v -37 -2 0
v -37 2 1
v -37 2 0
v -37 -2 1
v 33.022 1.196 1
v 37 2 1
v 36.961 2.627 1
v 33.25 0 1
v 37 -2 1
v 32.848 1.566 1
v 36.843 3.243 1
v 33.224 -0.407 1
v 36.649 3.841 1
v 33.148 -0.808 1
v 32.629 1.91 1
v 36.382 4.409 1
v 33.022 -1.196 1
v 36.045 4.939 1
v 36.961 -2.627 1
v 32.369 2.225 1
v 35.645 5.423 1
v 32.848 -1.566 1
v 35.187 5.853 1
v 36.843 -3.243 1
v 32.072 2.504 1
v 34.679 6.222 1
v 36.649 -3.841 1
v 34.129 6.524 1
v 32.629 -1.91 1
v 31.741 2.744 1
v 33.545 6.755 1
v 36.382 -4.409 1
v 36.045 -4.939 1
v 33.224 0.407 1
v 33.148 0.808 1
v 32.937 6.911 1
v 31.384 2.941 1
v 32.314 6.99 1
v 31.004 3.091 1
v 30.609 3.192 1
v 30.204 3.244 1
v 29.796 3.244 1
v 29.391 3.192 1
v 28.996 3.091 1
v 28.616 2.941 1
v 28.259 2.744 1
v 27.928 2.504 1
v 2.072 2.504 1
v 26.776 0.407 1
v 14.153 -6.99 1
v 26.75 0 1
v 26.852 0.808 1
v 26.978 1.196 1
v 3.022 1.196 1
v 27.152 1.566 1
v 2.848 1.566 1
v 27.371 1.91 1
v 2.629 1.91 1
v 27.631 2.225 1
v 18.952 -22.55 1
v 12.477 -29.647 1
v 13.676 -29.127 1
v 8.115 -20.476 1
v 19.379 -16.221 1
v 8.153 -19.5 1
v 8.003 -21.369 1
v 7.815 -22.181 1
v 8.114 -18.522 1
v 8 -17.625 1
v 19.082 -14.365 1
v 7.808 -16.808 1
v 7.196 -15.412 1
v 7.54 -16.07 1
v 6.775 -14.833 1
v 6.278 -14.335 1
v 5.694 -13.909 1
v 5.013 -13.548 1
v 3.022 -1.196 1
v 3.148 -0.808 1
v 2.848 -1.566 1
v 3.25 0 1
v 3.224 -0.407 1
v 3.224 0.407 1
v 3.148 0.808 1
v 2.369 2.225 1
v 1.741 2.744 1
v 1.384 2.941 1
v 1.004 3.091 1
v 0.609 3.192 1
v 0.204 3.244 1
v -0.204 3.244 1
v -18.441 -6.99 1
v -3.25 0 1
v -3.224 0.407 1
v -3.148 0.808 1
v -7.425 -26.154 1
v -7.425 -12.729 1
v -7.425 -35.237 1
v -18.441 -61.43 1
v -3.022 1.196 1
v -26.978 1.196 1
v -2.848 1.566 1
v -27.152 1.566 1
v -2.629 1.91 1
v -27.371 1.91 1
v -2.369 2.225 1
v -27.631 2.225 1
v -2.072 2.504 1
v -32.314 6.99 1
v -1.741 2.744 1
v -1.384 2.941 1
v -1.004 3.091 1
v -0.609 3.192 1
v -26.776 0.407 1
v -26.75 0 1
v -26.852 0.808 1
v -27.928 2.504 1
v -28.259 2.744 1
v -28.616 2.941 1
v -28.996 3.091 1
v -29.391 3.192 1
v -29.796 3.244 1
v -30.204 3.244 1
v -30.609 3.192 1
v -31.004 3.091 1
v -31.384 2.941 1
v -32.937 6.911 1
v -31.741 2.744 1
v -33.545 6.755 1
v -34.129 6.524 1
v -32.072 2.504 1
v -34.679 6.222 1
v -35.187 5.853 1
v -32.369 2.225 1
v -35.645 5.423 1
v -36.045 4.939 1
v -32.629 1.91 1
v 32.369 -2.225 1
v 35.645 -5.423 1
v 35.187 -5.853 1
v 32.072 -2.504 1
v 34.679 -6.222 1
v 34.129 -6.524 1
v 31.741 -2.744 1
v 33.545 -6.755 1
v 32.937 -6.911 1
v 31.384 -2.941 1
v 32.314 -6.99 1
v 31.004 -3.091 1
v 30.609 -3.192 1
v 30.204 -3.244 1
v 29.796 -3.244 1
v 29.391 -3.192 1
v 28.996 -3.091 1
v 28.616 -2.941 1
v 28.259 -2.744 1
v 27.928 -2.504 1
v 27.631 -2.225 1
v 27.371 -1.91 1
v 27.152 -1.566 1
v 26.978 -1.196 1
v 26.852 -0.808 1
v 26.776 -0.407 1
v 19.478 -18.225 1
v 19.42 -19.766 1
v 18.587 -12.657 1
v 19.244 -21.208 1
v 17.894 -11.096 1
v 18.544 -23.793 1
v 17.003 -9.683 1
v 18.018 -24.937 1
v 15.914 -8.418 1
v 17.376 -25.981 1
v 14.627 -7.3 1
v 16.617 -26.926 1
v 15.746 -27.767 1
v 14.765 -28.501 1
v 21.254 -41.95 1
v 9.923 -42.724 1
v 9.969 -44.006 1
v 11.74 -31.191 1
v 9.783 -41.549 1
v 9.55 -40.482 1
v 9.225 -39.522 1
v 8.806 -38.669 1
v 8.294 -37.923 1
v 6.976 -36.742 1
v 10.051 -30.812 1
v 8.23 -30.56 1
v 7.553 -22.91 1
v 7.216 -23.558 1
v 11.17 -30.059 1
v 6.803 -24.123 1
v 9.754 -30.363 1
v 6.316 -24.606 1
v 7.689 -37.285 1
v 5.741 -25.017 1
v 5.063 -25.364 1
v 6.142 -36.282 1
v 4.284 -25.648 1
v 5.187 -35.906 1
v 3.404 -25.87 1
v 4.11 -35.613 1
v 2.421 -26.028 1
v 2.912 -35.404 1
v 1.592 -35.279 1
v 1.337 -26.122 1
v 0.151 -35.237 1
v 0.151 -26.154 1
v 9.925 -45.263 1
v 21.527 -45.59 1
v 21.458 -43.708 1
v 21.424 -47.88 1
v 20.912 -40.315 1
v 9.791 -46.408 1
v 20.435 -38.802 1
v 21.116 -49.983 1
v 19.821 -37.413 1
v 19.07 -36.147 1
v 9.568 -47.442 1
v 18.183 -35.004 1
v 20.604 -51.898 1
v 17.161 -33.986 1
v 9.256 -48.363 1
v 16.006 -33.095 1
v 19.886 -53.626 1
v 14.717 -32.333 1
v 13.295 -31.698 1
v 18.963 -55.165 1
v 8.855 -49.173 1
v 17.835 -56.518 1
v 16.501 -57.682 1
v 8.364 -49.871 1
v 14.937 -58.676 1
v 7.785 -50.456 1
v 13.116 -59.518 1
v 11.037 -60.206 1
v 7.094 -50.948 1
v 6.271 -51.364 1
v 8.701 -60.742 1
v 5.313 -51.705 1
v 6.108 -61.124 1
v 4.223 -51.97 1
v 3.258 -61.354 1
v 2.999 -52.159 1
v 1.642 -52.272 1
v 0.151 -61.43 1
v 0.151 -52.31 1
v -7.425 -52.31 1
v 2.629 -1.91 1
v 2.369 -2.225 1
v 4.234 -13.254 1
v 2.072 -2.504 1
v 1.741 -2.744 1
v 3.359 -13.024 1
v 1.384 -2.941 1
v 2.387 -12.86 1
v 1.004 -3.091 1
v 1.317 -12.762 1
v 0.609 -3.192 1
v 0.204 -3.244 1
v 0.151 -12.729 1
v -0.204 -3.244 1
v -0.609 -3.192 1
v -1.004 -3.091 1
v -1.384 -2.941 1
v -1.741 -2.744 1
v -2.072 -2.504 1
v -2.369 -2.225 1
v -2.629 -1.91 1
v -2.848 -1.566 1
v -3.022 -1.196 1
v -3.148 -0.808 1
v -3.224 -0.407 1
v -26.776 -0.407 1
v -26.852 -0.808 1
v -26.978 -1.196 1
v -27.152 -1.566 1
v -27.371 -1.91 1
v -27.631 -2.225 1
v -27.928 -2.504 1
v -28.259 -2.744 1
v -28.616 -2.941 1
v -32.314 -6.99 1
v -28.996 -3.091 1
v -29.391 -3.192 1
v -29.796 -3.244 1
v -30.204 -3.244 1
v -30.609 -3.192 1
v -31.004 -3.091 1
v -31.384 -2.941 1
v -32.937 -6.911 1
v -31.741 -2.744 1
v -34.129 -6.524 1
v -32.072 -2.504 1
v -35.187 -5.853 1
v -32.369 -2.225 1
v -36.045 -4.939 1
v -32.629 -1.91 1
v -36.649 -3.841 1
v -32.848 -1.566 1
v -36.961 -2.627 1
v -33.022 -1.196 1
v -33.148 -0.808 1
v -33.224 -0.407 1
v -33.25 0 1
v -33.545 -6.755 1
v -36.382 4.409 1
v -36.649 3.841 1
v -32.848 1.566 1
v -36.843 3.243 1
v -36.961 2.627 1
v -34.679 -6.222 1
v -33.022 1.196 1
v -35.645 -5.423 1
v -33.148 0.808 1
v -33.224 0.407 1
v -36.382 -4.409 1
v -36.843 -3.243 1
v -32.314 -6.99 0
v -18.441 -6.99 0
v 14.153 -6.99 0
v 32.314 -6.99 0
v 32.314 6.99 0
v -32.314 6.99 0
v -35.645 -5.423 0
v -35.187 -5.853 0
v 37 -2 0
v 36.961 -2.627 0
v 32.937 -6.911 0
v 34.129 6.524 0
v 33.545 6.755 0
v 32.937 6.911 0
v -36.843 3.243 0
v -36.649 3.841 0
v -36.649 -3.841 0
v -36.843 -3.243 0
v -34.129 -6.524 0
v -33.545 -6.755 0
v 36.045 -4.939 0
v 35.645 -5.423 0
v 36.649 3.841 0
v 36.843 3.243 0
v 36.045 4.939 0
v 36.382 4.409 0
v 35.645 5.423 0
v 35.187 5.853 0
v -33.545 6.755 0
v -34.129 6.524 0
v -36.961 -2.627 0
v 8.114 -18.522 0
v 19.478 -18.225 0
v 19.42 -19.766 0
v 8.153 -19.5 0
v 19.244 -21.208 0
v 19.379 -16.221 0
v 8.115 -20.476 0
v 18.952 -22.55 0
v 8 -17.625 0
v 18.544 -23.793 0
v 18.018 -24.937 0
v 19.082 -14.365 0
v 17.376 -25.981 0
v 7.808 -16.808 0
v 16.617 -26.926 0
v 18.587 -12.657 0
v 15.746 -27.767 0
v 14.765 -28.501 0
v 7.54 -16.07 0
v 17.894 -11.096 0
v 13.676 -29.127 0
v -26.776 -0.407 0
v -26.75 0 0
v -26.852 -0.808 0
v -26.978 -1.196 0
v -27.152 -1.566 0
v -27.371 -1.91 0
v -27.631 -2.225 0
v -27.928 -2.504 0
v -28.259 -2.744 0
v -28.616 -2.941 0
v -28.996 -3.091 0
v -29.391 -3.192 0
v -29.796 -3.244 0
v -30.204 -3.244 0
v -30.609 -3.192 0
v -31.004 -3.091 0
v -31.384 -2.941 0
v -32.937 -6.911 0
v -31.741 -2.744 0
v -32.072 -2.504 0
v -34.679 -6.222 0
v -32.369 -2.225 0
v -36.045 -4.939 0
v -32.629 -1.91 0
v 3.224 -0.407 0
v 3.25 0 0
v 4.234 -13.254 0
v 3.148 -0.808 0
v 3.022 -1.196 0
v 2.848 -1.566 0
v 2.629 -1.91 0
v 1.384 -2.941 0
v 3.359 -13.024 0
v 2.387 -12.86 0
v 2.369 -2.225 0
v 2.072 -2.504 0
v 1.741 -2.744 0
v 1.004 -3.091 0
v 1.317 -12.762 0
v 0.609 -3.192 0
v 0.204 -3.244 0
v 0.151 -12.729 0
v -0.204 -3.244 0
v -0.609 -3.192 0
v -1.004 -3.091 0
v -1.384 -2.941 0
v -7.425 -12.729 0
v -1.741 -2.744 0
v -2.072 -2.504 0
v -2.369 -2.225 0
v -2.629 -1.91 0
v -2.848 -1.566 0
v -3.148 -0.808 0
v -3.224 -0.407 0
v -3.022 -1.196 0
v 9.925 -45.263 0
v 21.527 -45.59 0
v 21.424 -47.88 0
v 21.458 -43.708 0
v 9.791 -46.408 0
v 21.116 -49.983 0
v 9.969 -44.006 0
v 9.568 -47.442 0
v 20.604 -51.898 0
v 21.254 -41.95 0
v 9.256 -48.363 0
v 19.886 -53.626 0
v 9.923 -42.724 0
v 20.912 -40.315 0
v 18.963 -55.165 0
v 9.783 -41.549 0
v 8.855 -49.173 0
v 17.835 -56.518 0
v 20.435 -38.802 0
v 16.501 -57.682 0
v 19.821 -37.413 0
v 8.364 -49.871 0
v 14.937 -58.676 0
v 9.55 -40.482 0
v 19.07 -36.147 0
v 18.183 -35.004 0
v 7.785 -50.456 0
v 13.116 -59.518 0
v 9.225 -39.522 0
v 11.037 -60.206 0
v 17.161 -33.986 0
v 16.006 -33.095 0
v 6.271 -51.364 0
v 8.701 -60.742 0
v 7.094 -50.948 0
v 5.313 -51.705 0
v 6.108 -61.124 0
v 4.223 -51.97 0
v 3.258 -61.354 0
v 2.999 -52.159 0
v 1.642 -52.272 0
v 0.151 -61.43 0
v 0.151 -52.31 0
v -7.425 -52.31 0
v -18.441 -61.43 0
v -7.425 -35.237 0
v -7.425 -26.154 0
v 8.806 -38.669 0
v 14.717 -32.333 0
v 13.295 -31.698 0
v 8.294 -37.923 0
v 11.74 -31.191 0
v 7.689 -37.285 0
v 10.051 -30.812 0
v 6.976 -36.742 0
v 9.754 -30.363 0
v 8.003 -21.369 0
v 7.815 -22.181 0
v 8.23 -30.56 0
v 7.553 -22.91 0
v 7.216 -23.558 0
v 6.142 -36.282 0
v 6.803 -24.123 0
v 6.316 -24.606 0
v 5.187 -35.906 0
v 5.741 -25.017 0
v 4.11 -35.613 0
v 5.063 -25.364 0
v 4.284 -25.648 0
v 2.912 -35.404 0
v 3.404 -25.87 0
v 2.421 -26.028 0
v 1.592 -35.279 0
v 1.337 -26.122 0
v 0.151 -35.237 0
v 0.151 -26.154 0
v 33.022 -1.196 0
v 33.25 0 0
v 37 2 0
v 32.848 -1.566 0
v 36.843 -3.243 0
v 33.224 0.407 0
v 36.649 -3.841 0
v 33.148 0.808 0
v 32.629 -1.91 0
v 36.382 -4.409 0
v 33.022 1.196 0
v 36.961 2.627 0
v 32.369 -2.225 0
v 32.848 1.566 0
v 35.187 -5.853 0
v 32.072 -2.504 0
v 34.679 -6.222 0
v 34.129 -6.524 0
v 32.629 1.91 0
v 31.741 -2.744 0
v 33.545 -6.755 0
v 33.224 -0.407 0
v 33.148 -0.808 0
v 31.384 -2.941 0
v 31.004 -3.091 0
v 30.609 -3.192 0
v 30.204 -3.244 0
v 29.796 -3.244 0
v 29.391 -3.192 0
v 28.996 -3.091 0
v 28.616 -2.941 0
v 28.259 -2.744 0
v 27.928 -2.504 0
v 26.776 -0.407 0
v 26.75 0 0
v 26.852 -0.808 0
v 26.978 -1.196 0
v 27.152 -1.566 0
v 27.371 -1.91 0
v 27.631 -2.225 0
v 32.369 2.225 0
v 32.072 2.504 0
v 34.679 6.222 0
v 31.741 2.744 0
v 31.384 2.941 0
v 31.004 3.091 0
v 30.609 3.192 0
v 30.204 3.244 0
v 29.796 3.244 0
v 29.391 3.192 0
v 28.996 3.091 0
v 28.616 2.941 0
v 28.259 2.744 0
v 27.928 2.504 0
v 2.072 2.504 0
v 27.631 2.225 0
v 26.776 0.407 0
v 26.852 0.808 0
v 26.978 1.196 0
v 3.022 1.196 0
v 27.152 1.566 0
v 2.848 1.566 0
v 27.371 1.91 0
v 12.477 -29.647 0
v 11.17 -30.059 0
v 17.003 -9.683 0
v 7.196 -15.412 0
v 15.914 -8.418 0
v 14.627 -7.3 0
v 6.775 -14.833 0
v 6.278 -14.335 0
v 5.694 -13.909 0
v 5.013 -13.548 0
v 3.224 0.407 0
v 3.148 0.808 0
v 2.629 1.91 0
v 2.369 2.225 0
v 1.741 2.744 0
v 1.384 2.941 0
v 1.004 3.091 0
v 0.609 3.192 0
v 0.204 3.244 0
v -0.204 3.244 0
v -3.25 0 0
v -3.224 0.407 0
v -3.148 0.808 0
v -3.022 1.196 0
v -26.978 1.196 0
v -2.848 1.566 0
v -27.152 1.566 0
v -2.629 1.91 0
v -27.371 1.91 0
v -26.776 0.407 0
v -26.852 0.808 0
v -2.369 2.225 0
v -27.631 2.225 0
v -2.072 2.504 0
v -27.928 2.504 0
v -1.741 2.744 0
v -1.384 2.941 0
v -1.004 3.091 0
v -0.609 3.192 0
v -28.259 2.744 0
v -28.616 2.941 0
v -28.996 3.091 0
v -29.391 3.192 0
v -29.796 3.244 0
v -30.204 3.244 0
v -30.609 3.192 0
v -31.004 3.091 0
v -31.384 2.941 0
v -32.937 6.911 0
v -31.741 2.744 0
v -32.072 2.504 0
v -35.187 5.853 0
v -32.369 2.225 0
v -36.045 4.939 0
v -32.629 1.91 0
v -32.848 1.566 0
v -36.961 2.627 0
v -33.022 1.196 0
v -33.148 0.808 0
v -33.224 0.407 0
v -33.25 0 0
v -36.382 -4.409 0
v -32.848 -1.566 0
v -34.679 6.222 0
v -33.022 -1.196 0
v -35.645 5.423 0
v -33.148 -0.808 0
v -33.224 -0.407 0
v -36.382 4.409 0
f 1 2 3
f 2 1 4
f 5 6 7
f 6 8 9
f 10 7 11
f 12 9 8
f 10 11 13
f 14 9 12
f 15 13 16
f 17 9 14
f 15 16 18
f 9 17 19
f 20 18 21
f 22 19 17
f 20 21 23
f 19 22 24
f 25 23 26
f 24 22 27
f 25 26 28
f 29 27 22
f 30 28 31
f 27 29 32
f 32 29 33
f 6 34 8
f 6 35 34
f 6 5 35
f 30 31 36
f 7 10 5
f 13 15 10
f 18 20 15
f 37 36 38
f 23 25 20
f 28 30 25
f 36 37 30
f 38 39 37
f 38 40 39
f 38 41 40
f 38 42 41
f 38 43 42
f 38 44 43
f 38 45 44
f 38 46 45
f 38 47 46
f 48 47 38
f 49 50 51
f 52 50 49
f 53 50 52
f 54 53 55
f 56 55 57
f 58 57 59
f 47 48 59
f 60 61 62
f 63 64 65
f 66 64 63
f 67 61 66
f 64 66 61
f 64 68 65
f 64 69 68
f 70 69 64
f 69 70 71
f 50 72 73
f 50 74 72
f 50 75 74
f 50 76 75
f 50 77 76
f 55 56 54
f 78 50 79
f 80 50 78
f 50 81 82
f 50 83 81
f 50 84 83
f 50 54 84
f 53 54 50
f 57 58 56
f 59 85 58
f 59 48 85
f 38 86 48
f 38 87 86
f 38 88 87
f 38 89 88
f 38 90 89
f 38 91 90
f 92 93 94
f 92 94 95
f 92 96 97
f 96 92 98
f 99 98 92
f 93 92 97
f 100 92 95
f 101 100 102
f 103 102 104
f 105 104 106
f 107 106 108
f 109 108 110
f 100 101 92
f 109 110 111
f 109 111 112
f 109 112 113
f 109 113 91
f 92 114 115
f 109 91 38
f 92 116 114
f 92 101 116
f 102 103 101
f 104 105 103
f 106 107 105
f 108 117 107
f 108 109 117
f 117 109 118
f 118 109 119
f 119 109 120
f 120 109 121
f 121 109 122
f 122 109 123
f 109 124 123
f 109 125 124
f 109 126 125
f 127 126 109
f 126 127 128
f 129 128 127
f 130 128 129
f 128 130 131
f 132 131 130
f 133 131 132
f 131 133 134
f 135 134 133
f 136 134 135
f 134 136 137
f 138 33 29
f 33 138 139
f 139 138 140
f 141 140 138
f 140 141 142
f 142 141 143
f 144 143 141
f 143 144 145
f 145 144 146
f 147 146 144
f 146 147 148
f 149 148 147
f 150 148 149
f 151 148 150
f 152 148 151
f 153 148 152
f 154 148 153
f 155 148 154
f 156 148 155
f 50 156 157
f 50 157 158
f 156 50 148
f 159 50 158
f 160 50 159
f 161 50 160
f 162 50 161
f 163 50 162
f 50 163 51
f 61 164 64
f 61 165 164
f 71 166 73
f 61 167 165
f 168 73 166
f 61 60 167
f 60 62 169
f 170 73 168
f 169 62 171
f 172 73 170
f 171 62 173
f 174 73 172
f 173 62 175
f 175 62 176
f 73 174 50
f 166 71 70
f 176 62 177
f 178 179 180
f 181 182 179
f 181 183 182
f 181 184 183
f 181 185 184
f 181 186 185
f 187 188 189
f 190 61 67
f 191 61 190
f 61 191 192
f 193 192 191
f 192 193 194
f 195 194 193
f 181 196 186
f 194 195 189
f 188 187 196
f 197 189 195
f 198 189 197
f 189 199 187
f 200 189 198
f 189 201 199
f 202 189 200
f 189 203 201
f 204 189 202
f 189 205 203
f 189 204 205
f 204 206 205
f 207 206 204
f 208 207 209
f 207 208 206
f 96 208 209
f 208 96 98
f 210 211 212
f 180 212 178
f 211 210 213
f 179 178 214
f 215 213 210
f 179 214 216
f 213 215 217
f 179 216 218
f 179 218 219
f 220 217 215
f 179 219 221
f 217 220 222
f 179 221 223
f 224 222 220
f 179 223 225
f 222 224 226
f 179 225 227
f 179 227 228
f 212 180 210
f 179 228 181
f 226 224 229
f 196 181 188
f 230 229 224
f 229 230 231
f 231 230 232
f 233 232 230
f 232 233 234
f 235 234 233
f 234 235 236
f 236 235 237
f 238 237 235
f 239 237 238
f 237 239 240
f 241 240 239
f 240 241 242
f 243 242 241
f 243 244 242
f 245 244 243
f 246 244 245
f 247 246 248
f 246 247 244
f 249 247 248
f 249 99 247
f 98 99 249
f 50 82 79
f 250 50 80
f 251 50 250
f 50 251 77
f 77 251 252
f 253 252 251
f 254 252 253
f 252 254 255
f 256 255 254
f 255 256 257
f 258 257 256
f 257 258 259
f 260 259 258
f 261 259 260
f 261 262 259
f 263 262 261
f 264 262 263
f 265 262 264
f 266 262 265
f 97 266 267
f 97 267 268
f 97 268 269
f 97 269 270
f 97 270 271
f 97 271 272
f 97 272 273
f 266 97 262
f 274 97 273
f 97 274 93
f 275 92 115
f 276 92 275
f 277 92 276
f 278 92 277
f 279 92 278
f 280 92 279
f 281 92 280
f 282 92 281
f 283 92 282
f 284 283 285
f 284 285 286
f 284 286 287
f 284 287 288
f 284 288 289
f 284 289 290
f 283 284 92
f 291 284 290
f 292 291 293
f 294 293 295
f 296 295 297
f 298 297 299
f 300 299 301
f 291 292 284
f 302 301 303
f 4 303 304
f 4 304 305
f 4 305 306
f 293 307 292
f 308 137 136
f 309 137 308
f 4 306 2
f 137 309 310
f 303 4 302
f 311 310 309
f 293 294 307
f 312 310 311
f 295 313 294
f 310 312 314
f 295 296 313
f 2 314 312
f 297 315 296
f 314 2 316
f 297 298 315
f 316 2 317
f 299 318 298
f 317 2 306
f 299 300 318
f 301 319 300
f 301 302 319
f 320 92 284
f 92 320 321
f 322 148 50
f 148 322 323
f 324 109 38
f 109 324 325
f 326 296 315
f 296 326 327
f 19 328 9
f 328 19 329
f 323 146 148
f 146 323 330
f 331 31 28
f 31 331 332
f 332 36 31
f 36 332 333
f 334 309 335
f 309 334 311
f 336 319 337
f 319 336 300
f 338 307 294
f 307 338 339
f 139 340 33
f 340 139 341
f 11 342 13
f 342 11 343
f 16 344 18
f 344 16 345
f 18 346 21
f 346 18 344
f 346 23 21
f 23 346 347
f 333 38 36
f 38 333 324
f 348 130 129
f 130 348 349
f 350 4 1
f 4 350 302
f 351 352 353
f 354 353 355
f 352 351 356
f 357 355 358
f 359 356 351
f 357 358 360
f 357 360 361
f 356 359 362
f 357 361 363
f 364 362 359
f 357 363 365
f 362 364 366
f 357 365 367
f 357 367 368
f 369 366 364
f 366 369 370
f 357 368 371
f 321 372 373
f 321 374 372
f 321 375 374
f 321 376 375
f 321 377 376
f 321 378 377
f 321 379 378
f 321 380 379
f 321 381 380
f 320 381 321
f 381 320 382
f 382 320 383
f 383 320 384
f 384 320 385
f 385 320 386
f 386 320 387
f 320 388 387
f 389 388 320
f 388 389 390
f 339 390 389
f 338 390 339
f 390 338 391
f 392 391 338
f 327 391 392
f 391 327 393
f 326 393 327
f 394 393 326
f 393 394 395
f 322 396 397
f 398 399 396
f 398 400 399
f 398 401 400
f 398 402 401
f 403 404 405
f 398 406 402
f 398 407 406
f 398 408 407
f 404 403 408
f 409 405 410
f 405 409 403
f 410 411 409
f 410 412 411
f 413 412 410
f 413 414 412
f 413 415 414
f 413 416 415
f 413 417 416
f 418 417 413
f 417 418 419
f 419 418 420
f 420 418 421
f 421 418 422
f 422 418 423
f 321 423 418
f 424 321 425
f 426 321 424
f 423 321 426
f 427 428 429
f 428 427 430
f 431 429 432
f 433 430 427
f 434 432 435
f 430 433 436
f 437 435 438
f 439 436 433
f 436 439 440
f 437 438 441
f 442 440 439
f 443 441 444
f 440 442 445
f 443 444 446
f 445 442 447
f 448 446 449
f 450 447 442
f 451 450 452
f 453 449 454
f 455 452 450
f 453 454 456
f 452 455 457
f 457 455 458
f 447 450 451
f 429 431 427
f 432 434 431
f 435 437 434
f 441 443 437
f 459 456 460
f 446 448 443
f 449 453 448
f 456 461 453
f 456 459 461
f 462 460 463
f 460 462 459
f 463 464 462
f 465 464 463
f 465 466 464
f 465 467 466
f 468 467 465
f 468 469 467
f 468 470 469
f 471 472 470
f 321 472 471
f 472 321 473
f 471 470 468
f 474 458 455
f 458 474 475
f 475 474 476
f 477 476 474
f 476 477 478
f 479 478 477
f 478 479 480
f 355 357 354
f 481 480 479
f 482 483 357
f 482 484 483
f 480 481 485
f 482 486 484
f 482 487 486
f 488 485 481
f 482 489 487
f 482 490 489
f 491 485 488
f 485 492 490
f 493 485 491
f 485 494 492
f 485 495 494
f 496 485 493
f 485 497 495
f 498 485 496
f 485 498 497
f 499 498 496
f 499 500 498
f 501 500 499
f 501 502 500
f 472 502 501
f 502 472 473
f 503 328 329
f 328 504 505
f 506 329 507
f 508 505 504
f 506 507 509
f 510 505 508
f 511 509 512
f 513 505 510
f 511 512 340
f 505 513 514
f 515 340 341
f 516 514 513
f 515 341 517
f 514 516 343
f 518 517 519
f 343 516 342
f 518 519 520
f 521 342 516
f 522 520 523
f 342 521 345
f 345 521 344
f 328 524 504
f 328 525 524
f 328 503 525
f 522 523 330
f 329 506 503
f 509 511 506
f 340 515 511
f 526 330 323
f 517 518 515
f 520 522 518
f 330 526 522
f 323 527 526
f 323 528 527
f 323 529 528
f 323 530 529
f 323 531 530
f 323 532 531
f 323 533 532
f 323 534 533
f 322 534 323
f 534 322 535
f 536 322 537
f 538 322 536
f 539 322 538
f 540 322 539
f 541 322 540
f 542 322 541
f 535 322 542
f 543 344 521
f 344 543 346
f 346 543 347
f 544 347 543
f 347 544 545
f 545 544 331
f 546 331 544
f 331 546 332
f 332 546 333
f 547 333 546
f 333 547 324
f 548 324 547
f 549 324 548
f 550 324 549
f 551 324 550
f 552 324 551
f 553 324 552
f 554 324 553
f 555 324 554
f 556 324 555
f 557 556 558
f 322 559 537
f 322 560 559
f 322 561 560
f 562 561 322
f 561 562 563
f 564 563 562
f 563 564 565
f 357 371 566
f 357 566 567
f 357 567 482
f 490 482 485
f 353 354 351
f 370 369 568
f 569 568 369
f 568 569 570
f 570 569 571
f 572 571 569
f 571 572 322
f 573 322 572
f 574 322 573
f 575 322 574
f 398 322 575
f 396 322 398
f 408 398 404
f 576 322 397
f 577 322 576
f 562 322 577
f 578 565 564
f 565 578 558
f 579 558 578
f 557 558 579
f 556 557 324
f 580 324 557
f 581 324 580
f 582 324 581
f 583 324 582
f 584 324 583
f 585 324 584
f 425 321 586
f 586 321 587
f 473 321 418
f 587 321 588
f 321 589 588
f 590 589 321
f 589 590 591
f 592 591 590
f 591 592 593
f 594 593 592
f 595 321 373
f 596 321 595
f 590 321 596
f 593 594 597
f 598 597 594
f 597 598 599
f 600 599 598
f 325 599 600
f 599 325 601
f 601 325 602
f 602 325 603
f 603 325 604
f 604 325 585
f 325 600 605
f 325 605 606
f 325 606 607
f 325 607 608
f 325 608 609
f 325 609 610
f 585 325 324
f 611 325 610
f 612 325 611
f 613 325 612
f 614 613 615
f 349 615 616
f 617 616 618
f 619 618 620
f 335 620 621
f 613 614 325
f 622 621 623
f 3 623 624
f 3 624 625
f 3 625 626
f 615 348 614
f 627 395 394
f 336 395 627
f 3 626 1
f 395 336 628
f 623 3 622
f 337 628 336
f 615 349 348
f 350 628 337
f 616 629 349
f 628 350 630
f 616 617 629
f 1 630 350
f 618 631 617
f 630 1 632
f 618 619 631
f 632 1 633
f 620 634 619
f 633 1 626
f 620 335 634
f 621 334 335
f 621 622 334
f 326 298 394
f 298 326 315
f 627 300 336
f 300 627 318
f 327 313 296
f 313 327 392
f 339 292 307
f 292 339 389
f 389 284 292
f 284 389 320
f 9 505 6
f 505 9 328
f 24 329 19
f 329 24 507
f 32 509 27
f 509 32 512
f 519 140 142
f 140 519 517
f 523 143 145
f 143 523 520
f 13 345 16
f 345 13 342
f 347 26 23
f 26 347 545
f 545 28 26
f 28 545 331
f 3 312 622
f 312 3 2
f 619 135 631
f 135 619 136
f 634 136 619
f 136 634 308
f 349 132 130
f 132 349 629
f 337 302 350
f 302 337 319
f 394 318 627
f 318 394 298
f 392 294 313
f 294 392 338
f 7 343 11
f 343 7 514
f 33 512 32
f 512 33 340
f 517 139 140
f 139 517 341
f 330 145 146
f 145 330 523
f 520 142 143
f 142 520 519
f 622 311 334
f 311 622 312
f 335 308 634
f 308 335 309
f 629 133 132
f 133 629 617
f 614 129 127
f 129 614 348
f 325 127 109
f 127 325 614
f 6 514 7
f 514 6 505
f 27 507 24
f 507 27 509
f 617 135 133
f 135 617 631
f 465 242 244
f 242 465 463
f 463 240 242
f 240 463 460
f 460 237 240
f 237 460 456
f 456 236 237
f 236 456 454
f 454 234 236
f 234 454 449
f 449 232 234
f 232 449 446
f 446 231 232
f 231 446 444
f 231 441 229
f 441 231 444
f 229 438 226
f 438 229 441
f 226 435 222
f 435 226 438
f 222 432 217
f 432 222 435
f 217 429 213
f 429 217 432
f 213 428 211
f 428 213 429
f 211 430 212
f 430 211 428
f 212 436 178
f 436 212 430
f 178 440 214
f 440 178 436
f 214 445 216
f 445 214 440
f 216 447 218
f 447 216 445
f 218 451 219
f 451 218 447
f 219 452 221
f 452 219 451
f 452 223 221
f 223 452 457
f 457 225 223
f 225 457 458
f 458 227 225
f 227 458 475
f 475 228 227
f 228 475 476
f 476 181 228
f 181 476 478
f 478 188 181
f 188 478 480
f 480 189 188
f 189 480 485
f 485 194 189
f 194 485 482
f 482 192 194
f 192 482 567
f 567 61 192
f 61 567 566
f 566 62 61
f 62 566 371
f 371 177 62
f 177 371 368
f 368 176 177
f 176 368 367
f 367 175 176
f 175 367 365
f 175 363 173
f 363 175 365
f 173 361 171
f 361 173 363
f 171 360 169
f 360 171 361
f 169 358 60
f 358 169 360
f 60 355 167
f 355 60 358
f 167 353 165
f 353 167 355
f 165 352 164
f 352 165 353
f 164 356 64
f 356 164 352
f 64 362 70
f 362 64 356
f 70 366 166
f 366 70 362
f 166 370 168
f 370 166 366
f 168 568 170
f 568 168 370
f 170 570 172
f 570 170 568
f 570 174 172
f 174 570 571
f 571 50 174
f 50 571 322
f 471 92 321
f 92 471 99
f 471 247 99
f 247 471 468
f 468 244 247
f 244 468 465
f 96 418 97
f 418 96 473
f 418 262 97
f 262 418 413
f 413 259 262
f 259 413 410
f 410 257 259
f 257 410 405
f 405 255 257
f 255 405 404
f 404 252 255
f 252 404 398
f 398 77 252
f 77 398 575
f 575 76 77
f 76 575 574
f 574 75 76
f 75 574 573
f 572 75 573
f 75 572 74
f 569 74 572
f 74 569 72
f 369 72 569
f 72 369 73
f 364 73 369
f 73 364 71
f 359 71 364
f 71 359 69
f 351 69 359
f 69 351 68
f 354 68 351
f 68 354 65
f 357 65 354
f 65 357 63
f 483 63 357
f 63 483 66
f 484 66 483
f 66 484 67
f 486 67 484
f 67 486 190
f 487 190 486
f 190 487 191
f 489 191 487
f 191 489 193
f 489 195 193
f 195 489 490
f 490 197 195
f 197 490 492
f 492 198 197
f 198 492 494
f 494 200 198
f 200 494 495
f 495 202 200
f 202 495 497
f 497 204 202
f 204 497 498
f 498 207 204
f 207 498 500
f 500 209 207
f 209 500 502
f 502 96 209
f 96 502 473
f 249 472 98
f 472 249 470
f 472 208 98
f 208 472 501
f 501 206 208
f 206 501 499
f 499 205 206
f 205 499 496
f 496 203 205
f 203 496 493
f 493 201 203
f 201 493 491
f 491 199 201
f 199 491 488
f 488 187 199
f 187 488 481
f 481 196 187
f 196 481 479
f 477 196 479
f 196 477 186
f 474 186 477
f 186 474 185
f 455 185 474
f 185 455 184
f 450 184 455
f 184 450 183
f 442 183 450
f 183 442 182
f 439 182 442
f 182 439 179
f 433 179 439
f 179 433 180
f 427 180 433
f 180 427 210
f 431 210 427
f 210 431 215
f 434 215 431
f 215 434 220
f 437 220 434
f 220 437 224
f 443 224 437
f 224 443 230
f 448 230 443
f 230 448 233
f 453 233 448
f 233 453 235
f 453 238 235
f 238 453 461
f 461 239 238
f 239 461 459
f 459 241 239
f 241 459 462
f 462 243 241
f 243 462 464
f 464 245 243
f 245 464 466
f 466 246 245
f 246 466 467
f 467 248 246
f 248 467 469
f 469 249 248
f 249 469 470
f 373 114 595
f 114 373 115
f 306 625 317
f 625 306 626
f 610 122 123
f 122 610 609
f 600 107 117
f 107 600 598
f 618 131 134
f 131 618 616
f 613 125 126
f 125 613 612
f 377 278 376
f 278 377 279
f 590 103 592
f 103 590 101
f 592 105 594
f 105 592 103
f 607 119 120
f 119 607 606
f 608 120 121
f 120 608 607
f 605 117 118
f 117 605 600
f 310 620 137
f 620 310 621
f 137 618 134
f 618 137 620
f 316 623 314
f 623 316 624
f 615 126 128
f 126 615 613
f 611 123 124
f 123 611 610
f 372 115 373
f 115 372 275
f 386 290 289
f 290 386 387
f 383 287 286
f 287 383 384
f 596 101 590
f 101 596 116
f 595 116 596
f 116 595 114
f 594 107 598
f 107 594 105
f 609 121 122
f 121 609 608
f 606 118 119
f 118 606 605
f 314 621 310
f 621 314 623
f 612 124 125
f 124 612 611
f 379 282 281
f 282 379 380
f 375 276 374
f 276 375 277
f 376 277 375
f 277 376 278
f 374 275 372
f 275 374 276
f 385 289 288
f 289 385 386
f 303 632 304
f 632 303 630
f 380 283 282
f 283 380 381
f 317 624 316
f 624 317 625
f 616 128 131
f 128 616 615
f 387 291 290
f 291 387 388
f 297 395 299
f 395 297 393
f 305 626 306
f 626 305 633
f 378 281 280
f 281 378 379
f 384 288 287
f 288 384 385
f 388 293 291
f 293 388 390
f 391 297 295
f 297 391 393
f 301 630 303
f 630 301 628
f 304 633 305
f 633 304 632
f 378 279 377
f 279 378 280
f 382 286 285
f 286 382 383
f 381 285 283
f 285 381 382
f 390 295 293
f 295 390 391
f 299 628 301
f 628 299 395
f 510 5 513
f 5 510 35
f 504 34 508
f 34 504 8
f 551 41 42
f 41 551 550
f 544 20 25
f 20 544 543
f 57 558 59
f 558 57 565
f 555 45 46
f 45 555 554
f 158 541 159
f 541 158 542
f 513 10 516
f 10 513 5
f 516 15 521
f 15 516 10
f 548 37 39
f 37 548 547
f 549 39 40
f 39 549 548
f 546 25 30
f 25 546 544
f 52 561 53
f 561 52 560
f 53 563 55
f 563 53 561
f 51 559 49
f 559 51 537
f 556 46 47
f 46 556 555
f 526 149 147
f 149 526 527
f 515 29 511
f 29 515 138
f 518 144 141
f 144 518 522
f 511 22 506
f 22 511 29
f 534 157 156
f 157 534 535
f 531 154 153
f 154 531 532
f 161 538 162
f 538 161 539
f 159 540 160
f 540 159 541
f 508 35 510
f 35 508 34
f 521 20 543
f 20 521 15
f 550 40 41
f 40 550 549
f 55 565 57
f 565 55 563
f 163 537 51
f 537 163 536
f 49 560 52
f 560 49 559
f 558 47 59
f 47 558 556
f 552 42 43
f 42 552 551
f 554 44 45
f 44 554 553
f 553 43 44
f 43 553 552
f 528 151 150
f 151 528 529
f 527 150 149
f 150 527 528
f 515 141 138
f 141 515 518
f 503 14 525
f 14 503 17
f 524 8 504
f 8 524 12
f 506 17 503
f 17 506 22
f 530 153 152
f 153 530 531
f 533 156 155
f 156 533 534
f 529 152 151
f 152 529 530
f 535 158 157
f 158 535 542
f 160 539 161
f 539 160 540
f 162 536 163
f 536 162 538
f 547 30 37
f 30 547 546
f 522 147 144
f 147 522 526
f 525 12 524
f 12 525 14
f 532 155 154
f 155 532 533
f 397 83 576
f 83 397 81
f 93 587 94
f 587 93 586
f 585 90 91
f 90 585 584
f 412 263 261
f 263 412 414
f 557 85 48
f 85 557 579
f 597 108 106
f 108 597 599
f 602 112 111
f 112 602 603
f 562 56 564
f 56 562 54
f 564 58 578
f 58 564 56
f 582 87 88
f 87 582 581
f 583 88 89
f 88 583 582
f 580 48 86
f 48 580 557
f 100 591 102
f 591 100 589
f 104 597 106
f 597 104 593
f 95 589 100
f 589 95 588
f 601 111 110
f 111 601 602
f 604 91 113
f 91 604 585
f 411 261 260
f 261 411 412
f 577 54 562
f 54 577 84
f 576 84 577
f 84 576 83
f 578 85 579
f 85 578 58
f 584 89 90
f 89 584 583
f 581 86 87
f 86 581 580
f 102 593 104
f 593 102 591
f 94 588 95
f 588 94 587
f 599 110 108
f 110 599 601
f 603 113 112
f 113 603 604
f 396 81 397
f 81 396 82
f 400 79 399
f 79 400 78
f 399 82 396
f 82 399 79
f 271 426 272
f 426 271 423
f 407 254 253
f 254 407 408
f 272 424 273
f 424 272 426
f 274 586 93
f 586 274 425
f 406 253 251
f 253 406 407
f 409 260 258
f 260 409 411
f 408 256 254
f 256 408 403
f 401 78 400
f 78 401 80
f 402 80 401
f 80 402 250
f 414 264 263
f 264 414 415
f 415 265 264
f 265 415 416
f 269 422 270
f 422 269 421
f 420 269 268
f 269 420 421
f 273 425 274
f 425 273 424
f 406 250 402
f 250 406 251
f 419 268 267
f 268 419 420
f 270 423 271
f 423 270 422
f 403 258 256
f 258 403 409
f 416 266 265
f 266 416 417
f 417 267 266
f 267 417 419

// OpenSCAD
$fn = 50;


difference() {
	union() {
		translate(v = [0, 0, 0]) {
			rotate(a = [0, 0, 0]) {
				hull() {
					translate(v = [-32.0000000000, 2.0000000000, 0]) {
						rotate(a = [0, 0, 0]) {
							translate(v = [0, 0, 0]) {
								rotate(a = [0, 0, 0]) {
									cylinder(h = 1, r = 5);
								}
							}
						}
					}
					translate(v = [32.0000000000, 2.0000000000, 0]) {
						rotate(a = [0, 0, 0]) {
							translate(v = [0, 0, 0]) {
								rotate(a = [0, 0, 0]) {
									cylinder(h = 1, r = 5);
								}
							}
						}
					}
					translate(v = [-32.0000000000, -2.0000000000, 0]) {
						rotate(a = [0, 0, 0]) {
							translate(v = [0, 0, 0]) {
								rotate(a = [0, 0, 0]) {
									cylinder(h = 1, r = 5);
								}
							}
						}
					}
					translate(v = [32.0000000000, -2.0000000000, 0]) {
						rotate(a = [0, 0, 0]) {
							translate(v = [0, 0, 0]) {
								rotate(a = [0, 0, 0]) {
									cylinder(h = 1, r = 5);
								}
							}
						}
					}
				}
			}
		}
		translate(v = [0, -5, 0]) {
			rotate(a = [0, 0, 0]) {
				linear_extrude(height = 1) {
					text(font = "DejaVu Sans Mono:style=Bold", halign = "center", size = 57.0000000000, text = "B", valign = "top");
				}
			}
		}
	}
	union() {
		translate(v = [-30.0000000000, 0.0000000000, -125.0000000000]) {
			rotate(a = [0, 0, 0]) {
				cylinder(h = 250, r = 3.2500000000);
			}
		}
		translate(v = [30.0000000000, 0.0000000000, -125.0000000000]) {
			rotate(a = [0, 0, 0]) {
				cylinder(h = 250, r = 3.2500000000);
			}
		}
		translate(v = [30.0000000000, 0.0000000000, -125.0000000000]) {
			rotate(a = [0, 0, 0]) {
				cylinder(h = 250, r = 3.2500000000);
			}
		}
		translate(v = [0, 0, -125.0000000000]) {
			rotate(a = [0, 0, 0]) {
				cylinder(h = 250, r = 3.2500000000);
			}
		}
	}
}
